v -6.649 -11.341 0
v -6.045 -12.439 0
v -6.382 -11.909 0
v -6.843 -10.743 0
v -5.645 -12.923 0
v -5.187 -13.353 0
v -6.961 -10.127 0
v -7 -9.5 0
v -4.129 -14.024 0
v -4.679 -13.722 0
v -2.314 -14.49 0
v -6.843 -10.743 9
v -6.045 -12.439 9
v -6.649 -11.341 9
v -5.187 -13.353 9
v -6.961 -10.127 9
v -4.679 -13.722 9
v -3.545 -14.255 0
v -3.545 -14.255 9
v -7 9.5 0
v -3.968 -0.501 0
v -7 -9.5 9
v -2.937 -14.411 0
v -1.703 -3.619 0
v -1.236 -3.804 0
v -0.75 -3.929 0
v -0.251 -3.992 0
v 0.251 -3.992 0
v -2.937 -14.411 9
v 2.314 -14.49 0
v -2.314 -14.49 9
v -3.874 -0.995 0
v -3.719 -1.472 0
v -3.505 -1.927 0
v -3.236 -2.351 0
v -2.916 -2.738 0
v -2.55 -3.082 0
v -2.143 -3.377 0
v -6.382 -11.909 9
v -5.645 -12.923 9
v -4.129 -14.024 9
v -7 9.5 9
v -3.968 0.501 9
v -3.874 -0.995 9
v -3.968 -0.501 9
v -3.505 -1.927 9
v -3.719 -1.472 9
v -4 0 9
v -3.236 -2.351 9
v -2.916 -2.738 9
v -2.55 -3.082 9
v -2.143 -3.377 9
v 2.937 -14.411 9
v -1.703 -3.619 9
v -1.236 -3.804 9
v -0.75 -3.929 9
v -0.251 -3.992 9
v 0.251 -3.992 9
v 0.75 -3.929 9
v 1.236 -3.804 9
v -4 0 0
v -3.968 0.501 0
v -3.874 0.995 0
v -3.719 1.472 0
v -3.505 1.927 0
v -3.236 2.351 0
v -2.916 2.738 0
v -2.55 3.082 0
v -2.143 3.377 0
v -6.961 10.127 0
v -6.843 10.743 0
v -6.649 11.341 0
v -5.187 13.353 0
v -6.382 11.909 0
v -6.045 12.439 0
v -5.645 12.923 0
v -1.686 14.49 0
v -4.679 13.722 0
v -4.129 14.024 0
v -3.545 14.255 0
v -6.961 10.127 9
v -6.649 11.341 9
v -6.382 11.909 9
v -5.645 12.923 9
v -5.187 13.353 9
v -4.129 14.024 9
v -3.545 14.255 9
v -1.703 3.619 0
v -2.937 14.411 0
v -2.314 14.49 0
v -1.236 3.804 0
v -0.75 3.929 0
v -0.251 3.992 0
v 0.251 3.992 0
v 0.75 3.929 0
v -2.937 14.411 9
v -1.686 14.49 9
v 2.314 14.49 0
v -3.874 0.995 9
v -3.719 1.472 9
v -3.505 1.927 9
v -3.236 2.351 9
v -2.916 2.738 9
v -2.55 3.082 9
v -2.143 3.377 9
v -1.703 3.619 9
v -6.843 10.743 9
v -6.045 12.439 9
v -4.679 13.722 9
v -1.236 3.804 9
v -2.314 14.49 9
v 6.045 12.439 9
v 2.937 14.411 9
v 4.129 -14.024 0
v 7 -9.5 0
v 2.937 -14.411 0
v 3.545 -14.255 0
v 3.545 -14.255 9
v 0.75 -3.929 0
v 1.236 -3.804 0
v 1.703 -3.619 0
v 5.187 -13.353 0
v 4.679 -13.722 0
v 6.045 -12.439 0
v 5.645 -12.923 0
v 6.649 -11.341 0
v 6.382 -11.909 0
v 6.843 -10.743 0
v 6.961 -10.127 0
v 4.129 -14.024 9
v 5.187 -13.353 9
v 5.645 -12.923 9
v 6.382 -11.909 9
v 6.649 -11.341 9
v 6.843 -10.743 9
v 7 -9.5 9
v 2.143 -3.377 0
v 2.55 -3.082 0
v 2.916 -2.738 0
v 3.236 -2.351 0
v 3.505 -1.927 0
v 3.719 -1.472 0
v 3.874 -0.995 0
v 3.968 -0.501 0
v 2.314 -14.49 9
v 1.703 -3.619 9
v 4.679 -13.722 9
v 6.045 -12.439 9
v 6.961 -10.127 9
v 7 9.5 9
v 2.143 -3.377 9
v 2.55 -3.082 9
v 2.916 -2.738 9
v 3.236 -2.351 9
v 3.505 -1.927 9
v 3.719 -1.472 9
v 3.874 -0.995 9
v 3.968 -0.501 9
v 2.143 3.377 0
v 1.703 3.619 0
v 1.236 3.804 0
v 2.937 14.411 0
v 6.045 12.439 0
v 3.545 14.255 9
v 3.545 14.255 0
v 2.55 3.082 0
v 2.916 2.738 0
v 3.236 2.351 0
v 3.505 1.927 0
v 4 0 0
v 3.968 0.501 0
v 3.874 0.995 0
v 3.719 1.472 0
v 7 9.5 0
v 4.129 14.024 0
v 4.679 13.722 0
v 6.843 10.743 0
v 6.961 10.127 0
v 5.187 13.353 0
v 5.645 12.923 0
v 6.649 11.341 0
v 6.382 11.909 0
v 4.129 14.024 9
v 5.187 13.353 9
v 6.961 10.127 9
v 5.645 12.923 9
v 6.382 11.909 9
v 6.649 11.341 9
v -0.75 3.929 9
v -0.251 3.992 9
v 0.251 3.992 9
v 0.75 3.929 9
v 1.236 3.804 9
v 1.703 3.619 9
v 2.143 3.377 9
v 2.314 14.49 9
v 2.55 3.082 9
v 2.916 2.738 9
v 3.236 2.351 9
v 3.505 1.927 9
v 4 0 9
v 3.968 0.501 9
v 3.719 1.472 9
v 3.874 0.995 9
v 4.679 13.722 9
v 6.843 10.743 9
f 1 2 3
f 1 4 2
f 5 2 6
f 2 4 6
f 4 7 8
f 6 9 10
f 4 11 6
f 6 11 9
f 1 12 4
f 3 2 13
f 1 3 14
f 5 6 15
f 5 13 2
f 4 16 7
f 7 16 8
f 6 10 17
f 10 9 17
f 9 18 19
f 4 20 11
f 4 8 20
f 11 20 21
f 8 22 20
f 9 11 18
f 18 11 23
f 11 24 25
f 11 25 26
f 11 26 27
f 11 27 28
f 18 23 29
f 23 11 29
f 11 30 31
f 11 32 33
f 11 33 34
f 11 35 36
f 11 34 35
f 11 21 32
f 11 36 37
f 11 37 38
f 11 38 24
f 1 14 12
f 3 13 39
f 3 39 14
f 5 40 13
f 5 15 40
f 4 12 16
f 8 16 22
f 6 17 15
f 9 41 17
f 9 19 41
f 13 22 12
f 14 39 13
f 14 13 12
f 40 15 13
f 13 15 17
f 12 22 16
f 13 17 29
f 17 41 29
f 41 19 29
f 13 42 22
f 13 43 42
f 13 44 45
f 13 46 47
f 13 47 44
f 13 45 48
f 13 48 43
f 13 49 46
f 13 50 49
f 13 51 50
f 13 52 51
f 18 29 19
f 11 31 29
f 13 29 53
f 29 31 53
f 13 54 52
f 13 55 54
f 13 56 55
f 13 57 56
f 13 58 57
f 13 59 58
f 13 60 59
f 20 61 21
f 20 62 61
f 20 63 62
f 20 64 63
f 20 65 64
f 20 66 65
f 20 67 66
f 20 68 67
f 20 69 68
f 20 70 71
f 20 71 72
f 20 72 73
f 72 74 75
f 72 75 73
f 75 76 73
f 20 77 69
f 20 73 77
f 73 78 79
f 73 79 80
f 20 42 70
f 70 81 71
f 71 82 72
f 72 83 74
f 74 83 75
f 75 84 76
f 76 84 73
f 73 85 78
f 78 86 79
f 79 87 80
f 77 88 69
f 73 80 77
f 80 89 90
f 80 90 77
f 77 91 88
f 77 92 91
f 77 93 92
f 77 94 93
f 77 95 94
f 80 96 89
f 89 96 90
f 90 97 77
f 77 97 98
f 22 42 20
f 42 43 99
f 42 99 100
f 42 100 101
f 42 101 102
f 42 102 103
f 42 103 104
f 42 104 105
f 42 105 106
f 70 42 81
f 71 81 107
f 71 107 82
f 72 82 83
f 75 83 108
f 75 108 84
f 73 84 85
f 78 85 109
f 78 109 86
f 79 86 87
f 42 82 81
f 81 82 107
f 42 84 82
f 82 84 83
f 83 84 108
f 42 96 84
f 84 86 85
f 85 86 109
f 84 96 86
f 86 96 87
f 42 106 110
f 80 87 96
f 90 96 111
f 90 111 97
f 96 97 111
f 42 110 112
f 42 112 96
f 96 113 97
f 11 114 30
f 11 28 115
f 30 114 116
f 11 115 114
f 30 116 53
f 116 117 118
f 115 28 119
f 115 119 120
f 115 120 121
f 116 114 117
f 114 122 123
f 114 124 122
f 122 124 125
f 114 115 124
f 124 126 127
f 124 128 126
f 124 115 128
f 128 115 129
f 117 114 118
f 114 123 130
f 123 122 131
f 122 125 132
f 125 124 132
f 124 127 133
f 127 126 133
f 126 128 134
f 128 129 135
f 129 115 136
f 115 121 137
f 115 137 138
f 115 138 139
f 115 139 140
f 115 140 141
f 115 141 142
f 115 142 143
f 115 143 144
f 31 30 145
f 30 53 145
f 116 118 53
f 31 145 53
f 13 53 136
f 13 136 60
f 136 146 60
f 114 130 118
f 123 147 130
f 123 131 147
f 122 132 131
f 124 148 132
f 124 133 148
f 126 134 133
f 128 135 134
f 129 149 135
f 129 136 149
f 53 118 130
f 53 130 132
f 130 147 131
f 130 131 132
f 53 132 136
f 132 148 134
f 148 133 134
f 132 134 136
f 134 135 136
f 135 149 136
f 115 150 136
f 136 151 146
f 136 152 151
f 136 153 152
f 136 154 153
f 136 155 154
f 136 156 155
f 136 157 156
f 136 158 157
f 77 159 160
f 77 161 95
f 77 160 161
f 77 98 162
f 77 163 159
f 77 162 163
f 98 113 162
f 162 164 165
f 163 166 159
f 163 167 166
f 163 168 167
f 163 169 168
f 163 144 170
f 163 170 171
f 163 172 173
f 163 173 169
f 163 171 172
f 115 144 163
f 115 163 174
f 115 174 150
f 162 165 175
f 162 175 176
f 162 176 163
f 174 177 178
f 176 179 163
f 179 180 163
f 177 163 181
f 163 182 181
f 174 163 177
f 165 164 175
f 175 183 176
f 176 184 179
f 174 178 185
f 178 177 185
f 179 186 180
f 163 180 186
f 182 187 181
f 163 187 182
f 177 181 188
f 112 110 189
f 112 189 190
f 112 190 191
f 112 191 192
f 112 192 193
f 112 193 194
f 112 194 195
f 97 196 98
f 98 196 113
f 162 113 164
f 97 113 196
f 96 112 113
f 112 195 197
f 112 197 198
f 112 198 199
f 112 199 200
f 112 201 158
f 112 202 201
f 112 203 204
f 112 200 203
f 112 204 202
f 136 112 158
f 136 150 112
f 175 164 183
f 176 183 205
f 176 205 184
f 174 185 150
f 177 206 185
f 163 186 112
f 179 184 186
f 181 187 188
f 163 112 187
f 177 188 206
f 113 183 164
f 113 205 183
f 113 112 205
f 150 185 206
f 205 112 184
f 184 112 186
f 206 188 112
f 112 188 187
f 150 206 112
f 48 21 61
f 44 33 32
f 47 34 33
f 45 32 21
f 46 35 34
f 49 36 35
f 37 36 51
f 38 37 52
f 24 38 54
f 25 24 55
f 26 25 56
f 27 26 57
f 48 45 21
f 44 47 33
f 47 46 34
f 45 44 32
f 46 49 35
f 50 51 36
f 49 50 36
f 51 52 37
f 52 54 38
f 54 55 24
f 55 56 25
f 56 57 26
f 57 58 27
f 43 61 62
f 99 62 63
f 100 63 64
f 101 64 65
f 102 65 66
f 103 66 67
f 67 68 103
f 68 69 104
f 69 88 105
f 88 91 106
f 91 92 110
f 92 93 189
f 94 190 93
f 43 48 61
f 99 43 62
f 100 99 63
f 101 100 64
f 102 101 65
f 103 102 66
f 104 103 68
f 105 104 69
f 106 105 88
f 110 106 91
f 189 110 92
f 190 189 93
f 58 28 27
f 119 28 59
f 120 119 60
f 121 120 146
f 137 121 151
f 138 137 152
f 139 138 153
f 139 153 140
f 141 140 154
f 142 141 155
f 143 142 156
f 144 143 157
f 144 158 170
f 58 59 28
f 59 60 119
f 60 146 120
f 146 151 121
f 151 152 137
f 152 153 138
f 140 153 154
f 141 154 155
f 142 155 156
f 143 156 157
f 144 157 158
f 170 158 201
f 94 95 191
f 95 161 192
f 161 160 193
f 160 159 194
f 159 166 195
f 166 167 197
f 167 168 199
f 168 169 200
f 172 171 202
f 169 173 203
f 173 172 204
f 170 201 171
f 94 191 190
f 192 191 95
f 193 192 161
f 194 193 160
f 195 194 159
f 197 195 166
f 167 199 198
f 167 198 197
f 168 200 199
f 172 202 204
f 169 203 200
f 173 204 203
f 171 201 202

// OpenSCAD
$fn = 50;

difference() {
	union() {
		hull() {
			translate(v = [-2.0, 9.5, 0]) {
				cylinder(h = 9, r = 5);
			}
			translate(v = [2.0, 9.5, 0]) {
				cylinder(h = 9, r = 5);
			}
			translate(v = [-2.0, -9.5, 0]) {
				cylinder(h = 9, r = 5);
			}
			translate(v = [2.0, -9.5, 0]) {
				cylinder(h = 9, r = 5);
			}
		}
	}
	union() {
		cylinder(h = 9, r = 4.0);
	}
}
